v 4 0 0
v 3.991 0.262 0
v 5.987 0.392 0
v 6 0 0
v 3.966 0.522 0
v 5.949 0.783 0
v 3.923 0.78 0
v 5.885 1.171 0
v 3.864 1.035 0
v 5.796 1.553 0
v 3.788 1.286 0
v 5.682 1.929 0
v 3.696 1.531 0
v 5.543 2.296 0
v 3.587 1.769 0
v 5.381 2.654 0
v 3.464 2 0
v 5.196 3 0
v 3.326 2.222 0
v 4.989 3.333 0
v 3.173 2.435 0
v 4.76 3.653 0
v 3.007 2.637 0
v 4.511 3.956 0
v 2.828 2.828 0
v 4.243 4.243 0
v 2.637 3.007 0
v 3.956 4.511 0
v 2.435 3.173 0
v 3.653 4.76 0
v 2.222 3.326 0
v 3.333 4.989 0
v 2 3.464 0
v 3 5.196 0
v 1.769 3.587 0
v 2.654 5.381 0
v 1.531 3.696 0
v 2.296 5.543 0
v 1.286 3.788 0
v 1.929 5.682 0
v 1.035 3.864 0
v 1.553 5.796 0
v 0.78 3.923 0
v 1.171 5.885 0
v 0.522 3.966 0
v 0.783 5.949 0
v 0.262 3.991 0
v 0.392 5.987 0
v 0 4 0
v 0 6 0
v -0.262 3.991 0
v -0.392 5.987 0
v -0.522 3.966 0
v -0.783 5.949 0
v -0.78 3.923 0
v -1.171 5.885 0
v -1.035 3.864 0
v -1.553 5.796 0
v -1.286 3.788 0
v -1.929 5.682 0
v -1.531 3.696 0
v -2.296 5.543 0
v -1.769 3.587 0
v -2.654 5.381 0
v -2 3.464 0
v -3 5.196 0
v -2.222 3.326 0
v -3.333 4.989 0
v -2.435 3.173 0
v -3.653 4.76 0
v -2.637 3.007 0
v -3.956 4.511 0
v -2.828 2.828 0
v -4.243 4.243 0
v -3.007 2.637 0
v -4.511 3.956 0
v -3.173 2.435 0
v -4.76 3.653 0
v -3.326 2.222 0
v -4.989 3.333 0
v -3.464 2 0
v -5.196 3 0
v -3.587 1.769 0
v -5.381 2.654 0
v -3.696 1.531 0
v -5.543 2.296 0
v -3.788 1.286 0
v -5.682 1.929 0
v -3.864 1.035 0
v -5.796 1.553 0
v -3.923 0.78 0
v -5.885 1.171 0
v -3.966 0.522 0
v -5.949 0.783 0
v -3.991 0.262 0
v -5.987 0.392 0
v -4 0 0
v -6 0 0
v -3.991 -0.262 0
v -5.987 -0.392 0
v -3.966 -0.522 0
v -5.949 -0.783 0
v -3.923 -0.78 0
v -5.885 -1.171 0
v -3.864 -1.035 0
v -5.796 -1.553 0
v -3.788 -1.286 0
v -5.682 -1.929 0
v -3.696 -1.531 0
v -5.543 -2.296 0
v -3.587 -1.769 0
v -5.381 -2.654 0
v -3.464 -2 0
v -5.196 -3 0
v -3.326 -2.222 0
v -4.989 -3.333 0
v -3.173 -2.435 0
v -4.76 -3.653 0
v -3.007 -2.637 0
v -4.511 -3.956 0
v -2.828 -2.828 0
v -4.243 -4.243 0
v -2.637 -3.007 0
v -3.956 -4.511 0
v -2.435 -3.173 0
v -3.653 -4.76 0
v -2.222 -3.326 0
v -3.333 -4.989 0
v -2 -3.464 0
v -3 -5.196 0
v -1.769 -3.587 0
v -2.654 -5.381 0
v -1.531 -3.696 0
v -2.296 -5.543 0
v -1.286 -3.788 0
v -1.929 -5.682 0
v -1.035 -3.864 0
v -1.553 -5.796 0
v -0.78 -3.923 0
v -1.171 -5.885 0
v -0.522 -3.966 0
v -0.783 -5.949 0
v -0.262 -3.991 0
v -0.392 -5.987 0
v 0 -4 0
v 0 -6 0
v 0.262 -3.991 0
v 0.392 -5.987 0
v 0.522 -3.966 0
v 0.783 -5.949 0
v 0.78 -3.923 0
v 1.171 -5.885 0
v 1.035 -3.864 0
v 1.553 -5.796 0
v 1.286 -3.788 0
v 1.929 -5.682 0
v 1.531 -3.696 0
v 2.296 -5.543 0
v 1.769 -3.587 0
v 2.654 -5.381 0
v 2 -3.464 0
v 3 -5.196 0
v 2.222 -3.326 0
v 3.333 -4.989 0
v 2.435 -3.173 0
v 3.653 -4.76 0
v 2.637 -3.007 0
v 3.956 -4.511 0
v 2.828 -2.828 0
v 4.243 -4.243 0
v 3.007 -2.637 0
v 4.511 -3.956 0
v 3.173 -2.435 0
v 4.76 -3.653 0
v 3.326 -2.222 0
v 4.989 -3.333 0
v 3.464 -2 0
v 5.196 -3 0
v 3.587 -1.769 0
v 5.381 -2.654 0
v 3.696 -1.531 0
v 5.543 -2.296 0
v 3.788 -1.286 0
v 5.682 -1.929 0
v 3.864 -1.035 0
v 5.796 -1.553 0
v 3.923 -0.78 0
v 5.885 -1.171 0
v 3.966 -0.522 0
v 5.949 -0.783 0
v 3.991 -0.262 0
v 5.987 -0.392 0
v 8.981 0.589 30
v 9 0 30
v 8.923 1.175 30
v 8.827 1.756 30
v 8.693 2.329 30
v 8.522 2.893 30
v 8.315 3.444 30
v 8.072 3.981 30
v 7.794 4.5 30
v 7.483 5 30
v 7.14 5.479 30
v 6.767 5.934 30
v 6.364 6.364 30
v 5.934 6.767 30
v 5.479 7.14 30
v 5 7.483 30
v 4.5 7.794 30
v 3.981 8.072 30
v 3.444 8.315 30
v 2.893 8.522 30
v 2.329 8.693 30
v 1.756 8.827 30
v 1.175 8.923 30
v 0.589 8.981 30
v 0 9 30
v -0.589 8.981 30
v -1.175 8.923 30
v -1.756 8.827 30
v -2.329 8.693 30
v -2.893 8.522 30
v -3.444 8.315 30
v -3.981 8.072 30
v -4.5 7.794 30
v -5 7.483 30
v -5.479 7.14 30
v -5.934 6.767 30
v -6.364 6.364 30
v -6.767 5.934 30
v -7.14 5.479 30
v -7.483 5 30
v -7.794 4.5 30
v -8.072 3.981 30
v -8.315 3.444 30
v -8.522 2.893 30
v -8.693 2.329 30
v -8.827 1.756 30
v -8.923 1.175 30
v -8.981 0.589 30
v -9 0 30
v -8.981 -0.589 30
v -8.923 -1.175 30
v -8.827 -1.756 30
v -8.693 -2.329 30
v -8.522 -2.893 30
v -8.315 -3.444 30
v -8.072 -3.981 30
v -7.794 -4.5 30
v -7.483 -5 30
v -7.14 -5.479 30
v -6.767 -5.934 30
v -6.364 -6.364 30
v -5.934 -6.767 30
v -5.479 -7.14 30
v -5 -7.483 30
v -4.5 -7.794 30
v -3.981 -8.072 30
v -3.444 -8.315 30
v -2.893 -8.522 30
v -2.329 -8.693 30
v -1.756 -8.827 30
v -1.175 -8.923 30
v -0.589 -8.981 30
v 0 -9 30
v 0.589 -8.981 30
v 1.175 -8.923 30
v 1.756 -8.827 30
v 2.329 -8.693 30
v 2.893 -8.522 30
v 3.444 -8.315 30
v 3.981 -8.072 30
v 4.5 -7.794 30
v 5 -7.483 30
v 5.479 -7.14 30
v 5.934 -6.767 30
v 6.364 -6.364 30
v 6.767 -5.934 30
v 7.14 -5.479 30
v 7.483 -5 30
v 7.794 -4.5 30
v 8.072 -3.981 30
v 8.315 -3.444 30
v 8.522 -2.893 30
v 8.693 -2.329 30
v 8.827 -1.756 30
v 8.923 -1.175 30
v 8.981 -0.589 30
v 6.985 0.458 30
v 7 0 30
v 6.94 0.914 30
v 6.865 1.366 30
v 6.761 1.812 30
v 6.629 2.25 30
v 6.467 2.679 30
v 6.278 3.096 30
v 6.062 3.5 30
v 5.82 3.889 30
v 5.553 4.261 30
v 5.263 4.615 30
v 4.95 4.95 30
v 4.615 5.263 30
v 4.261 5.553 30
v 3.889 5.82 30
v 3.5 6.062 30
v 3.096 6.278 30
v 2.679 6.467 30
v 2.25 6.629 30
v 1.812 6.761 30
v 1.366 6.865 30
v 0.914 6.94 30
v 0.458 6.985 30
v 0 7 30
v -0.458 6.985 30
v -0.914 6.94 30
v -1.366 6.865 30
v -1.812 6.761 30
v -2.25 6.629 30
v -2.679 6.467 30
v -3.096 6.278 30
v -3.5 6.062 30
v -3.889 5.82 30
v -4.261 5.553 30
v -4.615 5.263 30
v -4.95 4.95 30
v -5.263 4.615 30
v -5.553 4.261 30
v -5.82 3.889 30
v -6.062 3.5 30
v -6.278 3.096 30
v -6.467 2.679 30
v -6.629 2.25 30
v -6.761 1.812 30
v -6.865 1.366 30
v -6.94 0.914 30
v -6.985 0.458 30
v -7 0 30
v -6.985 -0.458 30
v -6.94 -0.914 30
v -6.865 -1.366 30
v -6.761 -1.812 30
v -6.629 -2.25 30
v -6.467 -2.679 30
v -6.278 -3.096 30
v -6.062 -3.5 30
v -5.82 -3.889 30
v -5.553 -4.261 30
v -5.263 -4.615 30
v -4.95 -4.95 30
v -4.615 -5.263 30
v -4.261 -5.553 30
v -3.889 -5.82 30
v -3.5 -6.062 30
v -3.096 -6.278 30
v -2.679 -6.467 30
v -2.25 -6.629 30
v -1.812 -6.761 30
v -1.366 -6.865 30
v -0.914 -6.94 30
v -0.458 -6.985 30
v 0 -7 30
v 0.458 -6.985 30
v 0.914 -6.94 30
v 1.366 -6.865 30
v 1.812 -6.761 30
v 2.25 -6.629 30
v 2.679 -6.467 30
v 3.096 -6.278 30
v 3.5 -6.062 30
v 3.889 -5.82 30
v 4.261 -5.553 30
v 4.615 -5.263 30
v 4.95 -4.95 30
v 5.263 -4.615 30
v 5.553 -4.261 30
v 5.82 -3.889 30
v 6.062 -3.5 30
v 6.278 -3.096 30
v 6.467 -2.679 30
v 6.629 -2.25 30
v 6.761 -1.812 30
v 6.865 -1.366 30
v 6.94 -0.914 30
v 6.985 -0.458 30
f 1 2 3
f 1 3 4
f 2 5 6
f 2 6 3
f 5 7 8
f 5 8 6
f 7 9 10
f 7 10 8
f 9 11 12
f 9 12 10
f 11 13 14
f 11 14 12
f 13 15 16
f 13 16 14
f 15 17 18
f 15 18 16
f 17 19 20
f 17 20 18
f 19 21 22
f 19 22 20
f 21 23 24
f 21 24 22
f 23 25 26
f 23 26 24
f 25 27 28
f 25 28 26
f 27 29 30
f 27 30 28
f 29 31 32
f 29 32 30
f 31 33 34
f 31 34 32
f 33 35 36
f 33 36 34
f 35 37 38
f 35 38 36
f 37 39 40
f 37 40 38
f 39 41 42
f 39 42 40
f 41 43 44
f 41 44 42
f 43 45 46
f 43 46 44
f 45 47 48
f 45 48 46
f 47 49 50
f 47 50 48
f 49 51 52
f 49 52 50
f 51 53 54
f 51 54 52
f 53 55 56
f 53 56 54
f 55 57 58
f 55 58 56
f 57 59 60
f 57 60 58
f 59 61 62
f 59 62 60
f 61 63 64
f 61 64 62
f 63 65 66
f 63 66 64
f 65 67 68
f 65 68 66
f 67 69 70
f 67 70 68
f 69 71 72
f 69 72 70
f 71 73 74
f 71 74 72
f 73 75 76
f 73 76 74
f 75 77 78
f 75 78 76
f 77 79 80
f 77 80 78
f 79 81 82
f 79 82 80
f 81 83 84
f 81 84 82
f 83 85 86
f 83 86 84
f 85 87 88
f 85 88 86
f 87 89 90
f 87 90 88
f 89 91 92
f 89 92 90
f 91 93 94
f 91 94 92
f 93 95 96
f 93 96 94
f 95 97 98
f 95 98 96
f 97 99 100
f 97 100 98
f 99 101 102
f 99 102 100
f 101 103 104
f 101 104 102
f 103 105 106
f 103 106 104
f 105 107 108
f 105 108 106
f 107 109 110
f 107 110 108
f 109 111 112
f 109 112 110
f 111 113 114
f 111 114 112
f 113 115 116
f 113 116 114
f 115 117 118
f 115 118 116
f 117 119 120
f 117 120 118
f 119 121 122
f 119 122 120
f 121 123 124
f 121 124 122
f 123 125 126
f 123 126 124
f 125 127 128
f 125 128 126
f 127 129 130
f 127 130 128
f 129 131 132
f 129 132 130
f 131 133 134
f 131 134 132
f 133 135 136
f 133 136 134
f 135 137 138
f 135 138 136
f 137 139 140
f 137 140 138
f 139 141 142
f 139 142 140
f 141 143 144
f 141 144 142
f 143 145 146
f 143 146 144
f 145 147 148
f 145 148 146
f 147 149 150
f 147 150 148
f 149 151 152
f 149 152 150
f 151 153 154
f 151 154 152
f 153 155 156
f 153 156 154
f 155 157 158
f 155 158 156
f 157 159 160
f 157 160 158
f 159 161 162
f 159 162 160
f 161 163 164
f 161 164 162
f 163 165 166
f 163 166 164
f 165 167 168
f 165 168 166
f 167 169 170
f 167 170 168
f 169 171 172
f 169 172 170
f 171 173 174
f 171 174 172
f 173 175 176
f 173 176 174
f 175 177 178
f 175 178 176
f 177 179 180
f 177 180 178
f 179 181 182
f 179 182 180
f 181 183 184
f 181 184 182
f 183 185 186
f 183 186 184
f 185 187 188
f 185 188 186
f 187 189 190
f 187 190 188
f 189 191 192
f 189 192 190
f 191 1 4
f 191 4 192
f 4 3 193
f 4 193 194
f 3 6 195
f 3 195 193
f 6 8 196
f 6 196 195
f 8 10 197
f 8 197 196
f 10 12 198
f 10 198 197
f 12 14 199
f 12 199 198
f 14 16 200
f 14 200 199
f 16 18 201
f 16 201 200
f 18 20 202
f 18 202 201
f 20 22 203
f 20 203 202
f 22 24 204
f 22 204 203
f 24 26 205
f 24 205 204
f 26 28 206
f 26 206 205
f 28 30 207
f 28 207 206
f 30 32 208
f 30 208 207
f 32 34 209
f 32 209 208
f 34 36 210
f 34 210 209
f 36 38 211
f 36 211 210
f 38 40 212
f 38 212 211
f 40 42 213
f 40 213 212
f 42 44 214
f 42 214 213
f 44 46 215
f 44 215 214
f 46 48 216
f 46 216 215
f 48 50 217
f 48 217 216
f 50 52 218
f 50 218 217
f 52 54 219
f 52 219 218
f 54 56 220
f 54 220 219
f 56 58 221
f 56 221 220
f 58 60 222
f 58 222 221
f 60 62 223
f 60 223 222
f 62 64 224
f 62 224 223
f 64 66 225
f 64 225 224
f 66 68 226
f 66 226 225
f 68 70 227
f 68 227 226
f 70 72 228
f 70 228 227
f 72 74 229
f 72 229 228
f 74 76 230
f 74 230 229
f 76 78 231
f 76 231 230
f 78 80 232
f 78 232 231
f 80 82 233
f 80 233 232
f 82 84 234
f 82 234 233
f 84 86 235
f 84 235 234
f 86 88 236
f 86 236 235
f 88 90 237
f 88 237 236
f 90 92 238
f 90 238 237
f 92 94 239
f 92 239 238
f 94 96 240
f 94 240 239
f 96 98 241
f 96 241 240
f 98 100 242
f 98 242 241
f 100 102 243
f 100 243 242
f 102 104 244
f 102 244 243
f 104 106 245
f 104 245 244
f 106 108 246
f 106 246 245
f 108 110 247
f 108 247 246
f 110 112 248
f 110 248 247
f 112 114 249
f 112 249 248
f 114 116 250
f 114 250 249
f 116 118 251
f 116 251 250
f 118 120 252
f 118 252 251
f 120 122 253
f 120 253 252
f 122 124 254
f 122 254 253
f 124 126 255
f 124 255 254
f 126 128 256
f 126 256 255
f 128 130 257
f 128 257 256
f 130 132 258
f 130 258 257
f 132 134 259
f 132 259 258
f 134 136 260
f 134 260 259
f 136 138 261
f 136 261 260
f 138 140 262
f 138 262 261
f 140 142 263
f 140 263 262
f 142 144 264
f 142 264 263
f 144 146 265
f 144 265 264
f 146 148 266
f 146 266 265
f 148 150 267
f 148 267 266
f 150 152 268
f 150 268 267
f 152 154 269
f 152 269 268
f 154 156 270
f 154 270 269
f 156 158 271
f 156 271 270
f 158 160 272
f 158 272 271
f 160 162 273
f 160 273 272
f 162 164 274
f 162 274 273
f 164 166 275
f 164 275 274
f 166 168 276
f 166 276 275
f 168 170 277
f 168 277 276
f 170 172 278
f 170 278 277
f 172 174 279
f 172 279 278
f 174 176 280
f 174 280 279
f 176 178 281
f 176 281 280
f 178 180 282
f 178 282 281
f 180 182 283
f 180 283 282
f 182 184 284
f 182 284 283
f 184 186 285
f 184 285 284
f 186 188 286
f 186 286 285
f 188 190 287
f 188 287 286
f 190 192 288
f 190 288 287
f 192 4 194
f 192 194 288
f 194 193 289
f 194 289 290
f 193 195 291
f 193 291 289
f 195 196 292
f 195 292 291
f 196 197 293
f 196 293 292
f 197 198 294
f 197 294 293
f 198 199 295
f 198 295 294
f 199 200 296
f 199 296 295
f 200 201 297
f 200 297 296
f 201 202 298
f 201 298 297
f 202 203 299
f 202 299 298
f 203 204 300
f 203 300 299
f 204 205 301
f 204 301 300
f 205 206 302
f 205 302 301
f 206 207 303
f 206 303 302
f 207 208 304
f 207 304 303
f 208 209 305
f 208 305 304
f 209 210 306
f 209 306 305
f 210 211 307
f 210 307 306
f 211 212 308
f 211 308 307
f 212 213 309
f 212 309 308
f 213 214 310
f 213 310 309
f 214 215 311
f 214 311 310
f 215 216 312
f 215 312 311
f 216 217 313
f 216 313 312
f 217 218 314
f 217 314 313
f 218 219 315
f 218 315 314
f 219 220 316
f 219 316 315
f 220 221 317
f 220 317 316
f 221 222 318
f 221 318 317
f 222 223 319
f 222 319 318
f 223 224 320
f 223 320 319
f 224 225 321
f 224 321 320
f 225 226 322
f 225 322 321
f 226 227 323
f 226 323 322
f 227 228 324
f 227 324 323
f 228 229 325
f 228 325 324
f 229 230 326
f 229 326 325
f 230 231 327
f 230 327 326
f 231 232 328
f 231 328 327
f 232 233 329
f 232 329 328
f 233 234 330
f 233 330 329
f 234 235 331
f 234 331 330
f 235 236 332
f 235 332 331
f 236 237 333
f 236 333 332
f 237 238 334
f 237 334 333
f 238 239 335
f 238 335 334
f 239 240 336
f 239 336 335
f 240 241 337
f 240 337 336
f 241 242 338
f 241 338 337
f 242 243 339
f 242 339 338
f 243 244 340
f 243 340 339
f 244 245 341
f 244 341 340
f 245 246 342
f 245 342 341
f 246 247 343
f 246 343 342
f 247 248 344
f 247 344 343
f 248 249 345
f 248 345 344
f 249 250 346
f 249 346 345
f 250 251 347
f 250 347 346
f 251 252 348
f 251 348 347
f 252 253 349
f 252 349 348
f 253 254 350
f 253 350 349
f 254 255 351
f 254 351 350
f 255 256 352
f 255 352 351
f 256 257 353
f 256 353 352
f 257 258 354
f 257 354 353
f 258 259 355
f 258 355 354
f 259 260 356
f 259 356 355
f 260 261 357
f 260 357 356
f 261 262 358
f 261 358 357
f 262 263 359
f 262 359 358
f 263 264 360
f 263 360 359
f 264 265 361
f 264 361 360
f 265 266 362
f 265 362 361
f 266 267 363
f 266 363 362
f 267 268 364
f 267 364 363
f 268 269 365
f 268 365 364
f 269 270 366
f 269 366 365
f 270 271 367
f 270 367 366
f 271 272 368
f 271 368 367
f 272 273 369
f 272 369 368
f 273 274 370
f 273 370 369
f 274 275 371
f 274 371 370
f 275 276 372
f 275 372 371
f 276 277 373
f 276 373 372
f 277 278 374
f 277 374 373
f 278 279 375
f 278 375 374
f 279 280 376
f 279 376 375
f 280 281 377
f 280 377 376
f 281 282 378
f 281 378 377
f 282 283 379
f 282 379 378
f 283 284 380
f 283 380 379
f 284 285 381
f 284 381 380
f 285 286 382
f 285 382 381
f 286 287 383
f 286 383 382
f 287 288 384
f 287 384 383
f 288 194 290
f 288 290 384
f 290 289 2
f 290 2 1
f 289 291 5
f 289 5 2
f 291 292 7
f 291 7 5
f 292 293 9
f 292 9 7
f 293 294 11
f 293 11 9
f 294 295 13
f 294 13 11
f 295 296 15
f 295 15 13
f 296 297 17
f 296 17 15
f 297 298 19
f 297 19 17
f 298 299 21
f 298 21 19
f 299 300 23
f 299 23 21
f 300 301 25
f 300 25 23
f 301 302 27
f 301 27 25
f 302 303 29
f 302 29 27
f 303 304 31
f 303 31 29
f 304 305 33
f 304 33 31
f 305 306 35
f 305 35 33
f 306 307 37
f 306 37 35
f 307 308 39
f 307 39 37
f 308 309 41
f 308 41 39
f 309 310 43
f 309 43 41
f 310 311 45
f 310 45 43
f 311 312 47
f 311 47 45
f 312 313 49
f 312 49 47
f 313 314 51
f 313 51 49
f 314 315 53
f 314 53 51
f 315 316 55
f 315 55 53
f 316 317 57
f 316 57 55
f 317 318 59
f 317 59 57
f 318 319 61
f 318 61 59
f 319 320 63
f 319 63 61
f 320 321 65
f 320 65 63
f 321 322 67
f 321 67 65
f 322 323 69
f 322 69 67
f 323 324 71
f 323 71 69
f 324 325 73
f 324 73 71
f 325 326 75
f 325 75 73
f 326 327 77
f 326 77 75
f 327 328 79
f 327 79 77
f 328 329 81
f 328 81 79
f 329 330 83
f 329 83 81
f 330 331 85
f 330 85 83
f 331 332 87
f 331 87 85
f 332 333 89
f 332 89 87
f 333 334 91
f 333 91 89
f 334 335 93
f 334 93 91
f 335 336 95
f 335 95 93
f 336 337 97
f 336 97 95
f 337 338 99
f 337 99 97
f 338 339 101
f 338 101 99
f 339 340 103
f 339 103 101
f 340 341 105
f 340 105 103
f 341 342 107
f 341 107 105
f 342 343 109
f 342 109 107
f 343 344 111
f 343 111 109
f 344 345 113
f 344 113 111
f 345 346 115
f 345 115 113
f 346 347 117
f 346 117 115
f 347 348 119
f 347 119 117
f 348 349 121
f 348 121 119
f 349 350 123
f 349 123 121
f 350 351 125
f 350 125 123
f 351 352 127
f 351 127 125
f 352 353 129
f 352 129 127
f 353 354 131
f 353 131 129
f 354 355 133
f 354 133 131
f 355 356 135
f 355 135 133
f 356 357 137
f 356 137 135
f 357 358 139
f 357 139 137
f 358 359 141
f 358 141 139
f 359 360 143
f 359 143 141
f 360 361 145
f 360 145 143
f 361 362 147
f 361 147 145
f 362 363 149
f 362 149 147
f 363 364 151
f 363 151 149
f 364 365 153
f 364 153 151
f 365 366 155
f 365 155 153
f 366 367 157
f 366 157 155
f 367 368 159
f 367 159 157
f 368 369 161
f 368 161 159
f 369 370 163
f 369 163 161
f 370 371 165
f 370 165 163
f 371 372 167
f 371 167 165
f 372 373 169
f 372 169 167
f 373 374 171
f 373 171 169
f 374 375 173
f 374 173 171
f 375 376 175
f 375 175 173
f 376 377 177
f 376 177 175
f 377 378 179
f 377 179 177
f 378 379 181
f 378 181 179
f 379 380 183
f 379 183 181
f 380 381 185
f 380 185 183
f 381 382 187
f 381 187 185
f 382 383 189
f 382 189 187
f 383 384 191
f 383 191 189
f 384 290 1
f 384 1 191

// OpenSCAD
// Original MechIntel educational model. CC0-1.0. Units: mm.
// Not a standardized or load-rated component.
$fn=96;
// Section points: [radius, height], mm. Edit to change the profile.
section=[[4, 0], [6, 0], [9, 30], [7, 30]];
rotate_extrude($fn=96) polygon(points=section);
